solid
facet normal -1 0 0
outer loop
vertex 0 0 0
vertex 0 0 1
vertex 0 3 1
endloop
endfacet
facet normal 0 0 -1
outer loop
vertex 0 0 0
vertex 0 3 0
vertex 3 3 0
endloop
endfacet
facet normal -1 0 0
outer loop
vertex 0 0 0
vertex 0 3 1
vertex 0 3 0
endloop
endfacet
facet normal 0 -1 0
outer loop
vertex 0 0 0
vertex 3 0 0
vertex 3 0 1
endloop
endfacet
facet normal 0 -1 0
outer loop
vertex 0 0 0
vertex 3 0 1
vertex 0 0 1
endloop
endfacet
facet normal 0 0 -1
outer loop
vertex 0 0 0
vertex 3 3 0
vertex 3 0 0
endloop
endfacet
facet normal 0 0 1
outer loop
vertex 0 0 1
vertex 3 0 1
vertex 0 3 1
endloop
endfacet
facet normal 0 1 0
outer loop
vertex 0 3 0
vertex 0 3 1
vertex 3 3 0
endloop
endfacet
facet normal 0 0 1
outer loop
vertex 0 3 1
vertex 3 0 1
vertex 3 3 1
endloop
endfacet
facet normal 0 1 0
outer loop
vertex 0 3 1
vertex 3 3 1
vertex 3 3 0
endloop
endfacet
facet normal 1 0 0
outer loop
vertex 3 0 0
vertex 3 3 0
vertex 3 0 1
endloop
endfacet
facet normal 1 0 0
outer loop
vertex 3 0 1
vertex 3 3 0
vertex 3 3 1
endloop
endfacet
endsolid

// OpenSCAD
/* Warning, this is a very basic generator with a lot of approximation 
input data : [VQFN, HSC, 3x3x1.0mm, 16, , A, C04-25438A]
generated by com.zoubworld.electronics.cad.model3d.Basic
Date : Sun Feb 15 10:50:49 CET 2026
*/

//body
color("black")
translate([0,0,0])
cube([3.0,3.0,1.0], center=false);
